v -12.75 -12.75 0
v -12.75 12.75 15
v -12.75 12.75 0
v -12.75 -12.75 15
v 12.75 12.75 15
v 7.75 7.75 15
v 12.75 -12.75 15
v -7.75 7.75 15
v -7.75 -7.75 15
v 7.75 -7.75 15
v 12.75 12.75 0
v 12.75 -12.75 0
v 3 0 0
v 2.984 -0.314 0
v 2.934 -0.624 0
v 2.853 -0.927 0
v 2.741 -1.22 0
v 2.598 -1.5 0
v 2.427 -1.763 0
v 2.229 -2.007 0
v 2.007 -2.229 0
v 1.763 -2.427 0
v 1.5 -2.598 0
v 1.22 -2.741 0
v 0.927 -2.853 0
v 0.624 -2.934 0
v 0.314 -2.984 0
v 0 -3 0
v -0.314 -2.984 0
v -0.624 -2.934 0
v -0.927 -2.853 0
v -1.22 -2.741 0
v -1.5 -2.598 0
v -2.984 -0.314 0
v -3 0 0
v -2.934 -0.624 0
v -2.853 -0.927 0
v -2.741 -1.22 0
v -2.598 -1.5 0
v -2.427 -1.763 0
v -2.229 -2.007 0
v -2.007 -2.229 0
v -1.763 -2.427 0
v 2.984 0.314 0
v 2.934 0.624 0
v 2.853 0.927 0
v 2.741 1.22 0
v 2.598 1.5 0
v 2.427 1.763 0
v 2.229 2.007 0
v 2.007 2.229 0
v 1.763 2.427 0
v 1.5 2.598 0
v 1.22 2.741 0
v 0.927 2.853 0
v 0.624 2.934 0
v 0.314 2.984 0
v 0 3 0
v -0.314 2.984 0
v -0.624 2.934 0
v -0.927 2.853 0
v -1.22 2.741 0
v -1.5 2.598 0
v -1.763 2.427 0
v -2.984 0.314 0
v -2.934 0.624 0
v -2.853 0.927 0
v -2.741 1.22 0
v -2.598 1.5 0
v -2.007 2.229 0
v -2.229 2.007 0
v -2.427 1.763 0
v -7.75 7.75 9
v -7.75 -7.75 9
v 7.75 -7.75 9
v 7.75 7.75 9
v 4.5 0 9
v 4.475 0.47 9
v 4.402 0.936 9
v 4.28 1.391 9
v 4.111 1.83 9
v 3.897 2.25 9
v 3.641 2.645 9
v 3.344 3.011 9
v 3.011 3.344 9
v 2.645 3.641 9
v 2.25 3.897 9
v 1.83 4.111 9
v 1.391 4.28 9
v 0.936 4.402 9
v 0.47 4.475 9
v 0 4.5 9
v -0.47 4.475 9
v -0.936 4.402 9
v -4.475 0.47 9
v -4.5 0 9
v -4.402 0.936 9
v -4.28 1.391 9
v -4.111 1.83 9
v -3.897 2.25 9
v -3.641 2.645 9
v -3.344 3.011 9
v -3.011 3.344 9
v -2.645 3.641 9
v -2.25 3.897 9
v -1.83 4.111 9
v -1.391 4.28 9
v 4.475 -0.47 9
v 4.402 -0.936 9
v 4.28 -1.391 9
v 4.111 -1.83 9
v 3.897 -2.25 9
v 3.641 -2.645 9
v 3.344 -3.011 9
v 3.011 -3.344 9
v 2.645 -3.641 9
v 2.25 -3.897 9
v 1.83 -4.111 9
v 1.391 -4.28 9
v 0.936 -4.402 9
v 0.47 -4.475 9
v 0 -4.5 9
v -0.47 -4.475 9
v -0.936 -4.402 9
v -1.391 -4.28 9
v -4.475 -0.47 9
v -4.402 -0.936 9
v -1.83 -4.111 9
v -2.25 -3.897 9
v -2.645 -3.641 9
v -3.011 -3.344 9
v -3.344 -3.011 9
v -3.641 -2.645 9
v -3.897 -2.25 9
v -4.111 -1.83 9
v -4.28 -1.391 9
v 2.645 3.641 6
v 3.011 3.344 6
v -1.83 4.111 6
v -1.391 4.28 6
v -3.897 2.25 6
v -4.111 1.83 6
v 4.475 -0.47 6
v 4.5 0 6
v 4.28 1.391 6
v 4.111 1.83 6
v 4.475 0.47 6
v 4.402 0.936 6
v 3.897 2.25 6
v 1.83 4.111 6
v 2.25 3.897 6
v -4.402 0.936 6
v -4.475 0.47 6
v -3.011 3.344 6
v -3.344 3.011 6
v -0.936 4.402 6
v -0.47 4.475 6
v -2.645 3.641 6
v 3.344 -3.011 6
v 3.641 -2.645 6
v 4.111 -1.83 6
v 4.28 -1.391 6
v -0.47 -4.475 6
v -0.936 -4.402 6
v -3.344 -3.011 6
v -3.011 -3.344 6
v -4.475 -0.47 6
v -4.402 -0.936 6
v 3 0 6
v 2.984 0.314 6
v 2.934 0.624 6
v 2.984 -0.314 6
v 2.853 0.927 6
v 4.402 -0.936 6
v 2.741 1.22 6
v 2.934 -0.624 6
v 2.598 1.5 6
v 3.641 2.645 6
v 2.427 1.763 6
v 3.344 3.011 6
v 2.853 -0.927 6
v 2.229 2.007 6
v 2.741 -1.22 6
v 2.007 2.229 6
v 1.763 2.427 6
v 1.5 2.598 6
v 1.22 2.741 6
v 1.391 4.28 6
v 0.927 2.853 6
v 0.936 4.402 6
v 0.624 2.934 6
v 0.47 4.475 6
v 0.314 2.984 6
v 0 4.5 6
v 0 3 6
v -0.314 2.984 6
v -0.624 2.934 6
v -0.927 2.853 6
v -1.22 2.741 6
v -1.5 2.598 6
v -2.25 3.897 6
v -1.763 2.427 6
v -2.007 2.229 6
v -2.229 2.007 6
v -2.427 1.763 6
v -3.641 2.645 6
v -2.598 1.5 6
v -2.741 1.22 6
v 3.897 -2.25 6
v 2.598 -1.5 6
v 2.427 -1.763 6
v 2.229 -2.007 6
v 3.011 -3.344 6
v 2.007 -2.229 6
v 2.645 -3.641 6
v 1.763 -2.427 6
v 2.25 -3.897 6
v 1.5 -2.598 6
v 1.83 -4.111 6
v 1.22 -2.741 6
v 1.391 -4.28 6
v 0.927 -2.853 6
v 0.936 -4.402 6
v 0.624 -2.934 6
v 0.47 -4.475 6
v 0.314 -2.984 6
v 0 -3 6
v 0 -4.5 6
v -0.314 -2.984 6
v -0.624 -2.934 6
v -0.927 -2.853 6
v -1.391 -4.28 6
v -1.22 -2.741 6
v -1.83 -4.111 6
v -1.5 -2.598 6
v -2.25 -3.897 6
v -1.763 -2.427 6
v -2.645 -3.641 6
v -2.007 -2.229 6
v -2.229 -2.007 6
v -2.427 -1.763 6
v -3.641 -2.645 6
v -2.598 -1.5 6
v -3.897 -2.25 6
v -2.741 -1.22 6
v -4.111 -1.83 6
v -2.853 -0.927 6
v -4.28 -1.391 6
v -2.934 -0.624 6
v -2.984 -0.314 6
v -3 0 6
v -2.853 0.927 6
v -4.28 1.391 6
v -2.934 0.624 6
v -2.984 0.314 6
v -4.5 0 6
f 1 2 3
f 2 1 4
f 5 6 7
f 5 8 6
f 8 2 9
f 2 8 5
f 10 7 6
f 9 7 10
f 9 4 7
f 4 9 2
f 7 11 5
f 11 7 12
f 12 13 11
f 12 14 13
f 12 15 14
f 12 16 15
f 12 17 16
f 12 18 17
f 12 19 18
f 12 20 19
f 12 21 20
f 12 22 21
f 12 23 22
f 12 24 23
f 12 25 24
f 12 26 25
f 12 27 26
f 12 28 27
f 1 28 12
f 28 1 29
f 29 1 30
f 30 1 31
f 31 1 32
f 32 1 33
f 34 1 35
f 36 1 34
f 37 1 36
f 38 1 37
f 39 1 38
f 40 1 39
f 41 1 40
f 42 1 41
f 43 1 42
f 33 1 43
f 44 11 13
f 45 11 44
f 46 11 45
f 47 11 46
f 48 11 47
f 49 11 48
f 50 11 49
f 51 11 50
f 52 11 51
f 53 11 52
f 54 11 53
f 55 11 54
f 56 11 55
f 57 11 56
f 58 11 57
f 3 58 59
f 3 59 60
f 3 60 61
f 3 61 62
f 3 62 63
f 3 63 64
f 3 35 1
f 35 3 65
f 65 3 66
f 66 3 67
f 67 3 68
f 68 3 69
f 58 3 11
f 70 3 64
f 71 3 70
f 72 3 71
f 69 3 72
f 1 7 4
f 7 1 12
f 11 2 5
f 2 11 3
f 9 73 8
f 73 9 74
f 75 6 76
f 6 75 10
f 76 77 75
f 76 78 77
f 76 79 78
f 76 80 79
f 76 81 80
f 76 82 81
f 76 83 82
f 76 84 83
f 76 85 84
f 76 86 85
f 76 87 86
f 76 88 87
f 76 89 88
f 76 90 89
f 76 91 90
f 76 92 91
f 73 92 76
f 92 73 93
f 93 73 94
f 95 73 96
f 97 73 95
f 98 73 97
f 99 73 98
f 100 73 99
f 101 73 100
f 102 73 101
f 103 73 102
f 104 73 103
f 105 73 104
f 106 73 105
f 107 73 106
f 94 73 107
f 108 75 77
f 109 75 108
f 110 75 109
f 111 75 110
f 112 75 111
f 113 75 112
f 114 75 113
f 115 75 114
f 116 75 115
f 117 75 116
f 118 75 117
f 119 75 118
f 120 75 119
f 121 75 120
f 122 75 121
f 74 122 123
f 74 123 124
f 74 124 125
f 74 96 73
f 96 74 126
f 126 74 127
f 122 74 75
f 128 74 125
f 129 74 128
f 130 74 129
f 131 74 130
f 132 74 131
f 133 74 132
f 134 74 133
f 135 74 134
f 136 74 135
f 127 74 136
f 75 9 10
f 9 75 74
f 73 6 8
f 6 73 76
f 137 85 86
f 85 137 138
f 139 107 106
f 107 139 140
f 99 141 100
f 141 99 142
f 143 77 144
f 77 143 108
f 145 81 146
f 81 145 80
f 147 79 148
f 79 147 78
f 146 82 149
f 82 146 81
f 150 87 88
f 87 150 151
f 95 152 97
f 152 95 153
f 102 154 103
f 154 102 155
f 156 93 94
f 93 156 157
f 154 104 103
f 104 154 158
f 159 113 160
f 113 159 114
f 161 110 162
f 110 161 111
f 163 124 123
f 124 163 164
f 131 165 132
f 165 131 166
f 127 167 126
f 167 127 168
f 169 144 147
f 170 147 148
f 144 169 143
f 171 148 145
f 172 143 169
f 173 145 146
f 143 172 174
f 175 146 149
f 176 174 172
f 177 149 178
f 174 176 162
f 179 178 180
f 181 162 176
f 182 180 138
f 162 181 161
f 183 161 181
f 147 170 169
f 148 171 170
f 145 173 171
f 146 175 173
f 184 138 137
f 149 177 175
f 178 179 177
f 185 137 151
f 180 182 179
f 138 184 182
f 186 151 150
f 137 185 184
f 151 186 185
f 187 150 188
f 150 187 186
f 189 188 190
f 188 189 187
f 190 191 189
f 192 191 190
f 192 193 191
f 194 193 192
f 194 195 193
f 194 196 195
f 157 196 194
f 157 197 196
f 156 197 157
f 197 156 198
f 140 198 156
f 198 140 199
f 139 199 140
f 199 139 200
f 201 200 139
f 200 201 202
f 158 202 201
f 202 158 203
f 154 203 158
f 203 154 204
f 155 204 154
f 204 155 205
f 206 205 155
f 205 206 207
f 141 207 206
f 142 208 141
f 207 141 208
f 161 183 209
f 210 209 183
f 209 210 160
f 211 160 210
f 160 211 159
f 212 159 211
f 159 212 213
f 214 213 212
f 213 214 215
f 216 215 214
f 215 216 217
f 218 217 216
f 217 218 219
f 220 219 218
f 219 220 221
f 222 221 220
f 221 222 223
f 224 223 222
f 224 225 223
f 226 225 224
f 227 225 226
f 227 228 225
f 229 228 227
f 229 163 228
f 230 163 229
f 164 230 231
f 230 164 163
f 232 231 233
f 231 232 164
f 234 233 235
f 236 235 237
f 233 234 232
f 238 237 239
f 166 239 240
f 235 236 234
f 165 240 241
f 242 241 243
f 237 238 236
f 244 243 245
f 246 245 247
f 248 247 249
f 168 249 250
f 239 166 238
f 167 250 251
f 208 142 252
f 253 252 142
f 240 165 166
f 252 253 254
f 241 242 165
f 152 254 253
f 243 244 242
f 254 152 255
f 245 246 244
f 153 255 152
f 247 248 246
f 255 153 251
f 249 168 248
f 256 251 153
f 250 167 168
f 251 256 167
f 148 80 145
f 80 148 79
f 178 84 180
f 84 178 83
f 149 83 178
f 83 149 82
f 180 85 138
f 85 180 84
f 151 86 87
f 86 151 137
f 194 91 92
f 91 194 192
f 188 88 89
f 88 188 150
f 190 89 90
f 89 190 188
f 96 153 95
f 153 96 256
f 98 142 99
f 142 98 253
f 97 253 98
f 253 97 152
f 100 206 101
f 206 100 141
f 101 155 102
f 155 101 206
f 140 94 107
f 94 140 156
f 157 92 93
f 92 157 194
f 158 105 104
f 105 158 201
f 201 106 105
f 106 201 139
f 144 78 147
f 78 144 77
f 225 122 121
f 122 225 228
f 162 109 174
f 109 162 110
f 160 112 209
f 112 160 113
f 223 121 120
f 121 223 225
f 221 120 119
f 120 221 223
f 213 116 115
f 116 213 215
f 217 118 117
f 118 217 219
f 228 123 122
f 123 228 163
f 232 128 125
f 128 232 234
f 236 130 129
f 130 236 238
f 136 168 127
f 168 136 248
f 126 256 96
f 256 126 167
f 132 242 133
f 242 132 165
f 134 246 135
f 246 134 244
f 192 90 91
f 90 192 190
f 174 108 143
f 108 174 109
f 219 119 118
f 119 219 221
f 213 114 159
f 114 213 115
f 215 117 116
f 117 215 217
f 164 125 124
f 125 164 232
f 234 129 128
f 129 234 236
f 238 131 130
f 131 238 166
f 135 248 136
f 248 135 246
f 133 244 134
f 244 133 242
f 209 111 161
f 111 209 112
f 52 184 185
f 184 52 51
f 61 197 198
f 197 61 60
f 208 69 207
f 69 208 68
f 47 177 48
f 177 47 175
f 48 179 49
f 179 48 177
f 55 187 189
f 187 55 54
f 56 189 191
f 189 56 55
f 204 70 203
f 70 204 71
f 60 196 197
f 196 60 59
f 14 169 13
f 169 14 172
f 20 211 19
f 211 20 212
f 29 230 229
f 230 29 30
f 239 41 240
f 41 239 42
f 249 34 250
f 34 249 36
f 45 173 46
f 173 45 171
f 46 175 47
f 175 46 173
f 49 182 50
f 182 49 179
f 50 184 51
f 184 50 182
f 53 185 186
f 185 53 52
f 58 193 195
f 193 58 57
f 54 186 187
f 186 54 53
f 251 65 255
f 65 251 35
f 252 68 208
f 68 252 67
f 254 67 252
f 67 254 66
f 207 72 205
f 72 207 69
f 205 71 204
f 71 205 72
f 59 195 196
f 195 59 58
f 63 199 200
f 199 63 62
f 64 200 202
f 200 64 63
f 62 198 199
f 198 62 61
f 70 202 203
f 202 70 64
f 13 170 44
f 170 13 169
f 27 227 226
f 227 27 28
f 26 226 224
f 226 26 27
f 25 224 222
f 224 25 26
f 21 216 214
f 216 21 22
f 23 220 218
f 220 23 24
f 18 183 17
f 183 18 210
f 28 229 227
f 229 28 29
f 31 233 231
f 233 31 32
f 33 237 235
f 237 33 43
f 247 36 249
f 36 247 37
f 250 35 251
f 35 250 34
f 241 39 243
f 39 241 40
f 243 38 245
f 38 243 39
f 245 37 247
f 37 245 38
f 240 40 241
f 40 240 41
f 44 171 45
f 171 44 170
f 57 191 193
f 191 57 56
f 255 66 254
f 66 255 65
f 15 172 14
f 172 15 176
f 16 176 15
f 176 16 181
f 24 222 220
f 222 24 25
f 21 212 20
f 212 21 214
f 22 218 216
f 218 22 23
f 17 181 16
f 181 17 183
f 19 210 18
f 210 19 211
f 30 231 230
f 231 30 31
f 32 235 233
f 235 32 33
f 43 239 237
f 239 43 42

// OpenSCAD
//SUPPORT FOR HOLDER TO PIERCE STOPPER WITH NEEDLE
//design by AMV & KS
//17.11.2017, Warwick, UK

//// PARAMETERS - All units in mm

// STOPPER
stopper_R_top = 9/2;
//stopper_protusion_H = 2;

//STOPPER LIP
stopper_lip_R = stopper_R_top/1.5;
stopper_lip_H = 3;

//NEEDLE
needle_protusion_H = 6;

//CUBE LIP
cube_lip_W = 15.5;
cube_lip_L = 15.5;
cube_lip_H = 6; // How much more should this support and the stopper holder should overlap

//SUPPORT
cubeW = cube_lip_W+10;
cubeL = cube_lip_L+10;
cubeH = needle_protusion_H + stopper_lip_H + cube_lip_H;

//CUBES ARE PLACED HALF THEIR HEIGHT down Z, but centered in X and Y if centre = true
//CYLINDERS ARE PLACED AT Z = 0 and centered in X and Y if centre = true

//// MAKE PRINT
difference(){
    //CUBE
    translate([0,0,cubeH/2]) color("yellow") cube([cubeW,cubeL,cubeH],true,$fn=60);  
      
    //CUBE LIP
    translate([0,0,needle_protusion_H+stopper_lip_H+cubeH/2]) color("black") cube([cube_lip_W,cube_lip_L,cubeH],true,$fn=60);  

    //STOPPER LIP
    translate([0,0,needle_protusion_H]) color("red") cylinder(h = cubeH, r1 = stopper_R_top, r2 = stopper_R_top, center = false,$fn=60);
    
    //NEEDLE CANNAL    
    translate([0,0,-1]) color("green") cylinder(h = cubeH, r1 = stopper_lip_R, r2 = stopper_lip_R, center = false,$fn=60);
    
    //SEE INSIDE - MIUSt BE COMMENTED OUT!!!
//     translate([0,-(cubeL/2+1),cubeH/2]) color("yellow") cube([cubeW+2,cubeL+2,cubeH+2],true,$fn=60);  

} // "TOP difference" ends
